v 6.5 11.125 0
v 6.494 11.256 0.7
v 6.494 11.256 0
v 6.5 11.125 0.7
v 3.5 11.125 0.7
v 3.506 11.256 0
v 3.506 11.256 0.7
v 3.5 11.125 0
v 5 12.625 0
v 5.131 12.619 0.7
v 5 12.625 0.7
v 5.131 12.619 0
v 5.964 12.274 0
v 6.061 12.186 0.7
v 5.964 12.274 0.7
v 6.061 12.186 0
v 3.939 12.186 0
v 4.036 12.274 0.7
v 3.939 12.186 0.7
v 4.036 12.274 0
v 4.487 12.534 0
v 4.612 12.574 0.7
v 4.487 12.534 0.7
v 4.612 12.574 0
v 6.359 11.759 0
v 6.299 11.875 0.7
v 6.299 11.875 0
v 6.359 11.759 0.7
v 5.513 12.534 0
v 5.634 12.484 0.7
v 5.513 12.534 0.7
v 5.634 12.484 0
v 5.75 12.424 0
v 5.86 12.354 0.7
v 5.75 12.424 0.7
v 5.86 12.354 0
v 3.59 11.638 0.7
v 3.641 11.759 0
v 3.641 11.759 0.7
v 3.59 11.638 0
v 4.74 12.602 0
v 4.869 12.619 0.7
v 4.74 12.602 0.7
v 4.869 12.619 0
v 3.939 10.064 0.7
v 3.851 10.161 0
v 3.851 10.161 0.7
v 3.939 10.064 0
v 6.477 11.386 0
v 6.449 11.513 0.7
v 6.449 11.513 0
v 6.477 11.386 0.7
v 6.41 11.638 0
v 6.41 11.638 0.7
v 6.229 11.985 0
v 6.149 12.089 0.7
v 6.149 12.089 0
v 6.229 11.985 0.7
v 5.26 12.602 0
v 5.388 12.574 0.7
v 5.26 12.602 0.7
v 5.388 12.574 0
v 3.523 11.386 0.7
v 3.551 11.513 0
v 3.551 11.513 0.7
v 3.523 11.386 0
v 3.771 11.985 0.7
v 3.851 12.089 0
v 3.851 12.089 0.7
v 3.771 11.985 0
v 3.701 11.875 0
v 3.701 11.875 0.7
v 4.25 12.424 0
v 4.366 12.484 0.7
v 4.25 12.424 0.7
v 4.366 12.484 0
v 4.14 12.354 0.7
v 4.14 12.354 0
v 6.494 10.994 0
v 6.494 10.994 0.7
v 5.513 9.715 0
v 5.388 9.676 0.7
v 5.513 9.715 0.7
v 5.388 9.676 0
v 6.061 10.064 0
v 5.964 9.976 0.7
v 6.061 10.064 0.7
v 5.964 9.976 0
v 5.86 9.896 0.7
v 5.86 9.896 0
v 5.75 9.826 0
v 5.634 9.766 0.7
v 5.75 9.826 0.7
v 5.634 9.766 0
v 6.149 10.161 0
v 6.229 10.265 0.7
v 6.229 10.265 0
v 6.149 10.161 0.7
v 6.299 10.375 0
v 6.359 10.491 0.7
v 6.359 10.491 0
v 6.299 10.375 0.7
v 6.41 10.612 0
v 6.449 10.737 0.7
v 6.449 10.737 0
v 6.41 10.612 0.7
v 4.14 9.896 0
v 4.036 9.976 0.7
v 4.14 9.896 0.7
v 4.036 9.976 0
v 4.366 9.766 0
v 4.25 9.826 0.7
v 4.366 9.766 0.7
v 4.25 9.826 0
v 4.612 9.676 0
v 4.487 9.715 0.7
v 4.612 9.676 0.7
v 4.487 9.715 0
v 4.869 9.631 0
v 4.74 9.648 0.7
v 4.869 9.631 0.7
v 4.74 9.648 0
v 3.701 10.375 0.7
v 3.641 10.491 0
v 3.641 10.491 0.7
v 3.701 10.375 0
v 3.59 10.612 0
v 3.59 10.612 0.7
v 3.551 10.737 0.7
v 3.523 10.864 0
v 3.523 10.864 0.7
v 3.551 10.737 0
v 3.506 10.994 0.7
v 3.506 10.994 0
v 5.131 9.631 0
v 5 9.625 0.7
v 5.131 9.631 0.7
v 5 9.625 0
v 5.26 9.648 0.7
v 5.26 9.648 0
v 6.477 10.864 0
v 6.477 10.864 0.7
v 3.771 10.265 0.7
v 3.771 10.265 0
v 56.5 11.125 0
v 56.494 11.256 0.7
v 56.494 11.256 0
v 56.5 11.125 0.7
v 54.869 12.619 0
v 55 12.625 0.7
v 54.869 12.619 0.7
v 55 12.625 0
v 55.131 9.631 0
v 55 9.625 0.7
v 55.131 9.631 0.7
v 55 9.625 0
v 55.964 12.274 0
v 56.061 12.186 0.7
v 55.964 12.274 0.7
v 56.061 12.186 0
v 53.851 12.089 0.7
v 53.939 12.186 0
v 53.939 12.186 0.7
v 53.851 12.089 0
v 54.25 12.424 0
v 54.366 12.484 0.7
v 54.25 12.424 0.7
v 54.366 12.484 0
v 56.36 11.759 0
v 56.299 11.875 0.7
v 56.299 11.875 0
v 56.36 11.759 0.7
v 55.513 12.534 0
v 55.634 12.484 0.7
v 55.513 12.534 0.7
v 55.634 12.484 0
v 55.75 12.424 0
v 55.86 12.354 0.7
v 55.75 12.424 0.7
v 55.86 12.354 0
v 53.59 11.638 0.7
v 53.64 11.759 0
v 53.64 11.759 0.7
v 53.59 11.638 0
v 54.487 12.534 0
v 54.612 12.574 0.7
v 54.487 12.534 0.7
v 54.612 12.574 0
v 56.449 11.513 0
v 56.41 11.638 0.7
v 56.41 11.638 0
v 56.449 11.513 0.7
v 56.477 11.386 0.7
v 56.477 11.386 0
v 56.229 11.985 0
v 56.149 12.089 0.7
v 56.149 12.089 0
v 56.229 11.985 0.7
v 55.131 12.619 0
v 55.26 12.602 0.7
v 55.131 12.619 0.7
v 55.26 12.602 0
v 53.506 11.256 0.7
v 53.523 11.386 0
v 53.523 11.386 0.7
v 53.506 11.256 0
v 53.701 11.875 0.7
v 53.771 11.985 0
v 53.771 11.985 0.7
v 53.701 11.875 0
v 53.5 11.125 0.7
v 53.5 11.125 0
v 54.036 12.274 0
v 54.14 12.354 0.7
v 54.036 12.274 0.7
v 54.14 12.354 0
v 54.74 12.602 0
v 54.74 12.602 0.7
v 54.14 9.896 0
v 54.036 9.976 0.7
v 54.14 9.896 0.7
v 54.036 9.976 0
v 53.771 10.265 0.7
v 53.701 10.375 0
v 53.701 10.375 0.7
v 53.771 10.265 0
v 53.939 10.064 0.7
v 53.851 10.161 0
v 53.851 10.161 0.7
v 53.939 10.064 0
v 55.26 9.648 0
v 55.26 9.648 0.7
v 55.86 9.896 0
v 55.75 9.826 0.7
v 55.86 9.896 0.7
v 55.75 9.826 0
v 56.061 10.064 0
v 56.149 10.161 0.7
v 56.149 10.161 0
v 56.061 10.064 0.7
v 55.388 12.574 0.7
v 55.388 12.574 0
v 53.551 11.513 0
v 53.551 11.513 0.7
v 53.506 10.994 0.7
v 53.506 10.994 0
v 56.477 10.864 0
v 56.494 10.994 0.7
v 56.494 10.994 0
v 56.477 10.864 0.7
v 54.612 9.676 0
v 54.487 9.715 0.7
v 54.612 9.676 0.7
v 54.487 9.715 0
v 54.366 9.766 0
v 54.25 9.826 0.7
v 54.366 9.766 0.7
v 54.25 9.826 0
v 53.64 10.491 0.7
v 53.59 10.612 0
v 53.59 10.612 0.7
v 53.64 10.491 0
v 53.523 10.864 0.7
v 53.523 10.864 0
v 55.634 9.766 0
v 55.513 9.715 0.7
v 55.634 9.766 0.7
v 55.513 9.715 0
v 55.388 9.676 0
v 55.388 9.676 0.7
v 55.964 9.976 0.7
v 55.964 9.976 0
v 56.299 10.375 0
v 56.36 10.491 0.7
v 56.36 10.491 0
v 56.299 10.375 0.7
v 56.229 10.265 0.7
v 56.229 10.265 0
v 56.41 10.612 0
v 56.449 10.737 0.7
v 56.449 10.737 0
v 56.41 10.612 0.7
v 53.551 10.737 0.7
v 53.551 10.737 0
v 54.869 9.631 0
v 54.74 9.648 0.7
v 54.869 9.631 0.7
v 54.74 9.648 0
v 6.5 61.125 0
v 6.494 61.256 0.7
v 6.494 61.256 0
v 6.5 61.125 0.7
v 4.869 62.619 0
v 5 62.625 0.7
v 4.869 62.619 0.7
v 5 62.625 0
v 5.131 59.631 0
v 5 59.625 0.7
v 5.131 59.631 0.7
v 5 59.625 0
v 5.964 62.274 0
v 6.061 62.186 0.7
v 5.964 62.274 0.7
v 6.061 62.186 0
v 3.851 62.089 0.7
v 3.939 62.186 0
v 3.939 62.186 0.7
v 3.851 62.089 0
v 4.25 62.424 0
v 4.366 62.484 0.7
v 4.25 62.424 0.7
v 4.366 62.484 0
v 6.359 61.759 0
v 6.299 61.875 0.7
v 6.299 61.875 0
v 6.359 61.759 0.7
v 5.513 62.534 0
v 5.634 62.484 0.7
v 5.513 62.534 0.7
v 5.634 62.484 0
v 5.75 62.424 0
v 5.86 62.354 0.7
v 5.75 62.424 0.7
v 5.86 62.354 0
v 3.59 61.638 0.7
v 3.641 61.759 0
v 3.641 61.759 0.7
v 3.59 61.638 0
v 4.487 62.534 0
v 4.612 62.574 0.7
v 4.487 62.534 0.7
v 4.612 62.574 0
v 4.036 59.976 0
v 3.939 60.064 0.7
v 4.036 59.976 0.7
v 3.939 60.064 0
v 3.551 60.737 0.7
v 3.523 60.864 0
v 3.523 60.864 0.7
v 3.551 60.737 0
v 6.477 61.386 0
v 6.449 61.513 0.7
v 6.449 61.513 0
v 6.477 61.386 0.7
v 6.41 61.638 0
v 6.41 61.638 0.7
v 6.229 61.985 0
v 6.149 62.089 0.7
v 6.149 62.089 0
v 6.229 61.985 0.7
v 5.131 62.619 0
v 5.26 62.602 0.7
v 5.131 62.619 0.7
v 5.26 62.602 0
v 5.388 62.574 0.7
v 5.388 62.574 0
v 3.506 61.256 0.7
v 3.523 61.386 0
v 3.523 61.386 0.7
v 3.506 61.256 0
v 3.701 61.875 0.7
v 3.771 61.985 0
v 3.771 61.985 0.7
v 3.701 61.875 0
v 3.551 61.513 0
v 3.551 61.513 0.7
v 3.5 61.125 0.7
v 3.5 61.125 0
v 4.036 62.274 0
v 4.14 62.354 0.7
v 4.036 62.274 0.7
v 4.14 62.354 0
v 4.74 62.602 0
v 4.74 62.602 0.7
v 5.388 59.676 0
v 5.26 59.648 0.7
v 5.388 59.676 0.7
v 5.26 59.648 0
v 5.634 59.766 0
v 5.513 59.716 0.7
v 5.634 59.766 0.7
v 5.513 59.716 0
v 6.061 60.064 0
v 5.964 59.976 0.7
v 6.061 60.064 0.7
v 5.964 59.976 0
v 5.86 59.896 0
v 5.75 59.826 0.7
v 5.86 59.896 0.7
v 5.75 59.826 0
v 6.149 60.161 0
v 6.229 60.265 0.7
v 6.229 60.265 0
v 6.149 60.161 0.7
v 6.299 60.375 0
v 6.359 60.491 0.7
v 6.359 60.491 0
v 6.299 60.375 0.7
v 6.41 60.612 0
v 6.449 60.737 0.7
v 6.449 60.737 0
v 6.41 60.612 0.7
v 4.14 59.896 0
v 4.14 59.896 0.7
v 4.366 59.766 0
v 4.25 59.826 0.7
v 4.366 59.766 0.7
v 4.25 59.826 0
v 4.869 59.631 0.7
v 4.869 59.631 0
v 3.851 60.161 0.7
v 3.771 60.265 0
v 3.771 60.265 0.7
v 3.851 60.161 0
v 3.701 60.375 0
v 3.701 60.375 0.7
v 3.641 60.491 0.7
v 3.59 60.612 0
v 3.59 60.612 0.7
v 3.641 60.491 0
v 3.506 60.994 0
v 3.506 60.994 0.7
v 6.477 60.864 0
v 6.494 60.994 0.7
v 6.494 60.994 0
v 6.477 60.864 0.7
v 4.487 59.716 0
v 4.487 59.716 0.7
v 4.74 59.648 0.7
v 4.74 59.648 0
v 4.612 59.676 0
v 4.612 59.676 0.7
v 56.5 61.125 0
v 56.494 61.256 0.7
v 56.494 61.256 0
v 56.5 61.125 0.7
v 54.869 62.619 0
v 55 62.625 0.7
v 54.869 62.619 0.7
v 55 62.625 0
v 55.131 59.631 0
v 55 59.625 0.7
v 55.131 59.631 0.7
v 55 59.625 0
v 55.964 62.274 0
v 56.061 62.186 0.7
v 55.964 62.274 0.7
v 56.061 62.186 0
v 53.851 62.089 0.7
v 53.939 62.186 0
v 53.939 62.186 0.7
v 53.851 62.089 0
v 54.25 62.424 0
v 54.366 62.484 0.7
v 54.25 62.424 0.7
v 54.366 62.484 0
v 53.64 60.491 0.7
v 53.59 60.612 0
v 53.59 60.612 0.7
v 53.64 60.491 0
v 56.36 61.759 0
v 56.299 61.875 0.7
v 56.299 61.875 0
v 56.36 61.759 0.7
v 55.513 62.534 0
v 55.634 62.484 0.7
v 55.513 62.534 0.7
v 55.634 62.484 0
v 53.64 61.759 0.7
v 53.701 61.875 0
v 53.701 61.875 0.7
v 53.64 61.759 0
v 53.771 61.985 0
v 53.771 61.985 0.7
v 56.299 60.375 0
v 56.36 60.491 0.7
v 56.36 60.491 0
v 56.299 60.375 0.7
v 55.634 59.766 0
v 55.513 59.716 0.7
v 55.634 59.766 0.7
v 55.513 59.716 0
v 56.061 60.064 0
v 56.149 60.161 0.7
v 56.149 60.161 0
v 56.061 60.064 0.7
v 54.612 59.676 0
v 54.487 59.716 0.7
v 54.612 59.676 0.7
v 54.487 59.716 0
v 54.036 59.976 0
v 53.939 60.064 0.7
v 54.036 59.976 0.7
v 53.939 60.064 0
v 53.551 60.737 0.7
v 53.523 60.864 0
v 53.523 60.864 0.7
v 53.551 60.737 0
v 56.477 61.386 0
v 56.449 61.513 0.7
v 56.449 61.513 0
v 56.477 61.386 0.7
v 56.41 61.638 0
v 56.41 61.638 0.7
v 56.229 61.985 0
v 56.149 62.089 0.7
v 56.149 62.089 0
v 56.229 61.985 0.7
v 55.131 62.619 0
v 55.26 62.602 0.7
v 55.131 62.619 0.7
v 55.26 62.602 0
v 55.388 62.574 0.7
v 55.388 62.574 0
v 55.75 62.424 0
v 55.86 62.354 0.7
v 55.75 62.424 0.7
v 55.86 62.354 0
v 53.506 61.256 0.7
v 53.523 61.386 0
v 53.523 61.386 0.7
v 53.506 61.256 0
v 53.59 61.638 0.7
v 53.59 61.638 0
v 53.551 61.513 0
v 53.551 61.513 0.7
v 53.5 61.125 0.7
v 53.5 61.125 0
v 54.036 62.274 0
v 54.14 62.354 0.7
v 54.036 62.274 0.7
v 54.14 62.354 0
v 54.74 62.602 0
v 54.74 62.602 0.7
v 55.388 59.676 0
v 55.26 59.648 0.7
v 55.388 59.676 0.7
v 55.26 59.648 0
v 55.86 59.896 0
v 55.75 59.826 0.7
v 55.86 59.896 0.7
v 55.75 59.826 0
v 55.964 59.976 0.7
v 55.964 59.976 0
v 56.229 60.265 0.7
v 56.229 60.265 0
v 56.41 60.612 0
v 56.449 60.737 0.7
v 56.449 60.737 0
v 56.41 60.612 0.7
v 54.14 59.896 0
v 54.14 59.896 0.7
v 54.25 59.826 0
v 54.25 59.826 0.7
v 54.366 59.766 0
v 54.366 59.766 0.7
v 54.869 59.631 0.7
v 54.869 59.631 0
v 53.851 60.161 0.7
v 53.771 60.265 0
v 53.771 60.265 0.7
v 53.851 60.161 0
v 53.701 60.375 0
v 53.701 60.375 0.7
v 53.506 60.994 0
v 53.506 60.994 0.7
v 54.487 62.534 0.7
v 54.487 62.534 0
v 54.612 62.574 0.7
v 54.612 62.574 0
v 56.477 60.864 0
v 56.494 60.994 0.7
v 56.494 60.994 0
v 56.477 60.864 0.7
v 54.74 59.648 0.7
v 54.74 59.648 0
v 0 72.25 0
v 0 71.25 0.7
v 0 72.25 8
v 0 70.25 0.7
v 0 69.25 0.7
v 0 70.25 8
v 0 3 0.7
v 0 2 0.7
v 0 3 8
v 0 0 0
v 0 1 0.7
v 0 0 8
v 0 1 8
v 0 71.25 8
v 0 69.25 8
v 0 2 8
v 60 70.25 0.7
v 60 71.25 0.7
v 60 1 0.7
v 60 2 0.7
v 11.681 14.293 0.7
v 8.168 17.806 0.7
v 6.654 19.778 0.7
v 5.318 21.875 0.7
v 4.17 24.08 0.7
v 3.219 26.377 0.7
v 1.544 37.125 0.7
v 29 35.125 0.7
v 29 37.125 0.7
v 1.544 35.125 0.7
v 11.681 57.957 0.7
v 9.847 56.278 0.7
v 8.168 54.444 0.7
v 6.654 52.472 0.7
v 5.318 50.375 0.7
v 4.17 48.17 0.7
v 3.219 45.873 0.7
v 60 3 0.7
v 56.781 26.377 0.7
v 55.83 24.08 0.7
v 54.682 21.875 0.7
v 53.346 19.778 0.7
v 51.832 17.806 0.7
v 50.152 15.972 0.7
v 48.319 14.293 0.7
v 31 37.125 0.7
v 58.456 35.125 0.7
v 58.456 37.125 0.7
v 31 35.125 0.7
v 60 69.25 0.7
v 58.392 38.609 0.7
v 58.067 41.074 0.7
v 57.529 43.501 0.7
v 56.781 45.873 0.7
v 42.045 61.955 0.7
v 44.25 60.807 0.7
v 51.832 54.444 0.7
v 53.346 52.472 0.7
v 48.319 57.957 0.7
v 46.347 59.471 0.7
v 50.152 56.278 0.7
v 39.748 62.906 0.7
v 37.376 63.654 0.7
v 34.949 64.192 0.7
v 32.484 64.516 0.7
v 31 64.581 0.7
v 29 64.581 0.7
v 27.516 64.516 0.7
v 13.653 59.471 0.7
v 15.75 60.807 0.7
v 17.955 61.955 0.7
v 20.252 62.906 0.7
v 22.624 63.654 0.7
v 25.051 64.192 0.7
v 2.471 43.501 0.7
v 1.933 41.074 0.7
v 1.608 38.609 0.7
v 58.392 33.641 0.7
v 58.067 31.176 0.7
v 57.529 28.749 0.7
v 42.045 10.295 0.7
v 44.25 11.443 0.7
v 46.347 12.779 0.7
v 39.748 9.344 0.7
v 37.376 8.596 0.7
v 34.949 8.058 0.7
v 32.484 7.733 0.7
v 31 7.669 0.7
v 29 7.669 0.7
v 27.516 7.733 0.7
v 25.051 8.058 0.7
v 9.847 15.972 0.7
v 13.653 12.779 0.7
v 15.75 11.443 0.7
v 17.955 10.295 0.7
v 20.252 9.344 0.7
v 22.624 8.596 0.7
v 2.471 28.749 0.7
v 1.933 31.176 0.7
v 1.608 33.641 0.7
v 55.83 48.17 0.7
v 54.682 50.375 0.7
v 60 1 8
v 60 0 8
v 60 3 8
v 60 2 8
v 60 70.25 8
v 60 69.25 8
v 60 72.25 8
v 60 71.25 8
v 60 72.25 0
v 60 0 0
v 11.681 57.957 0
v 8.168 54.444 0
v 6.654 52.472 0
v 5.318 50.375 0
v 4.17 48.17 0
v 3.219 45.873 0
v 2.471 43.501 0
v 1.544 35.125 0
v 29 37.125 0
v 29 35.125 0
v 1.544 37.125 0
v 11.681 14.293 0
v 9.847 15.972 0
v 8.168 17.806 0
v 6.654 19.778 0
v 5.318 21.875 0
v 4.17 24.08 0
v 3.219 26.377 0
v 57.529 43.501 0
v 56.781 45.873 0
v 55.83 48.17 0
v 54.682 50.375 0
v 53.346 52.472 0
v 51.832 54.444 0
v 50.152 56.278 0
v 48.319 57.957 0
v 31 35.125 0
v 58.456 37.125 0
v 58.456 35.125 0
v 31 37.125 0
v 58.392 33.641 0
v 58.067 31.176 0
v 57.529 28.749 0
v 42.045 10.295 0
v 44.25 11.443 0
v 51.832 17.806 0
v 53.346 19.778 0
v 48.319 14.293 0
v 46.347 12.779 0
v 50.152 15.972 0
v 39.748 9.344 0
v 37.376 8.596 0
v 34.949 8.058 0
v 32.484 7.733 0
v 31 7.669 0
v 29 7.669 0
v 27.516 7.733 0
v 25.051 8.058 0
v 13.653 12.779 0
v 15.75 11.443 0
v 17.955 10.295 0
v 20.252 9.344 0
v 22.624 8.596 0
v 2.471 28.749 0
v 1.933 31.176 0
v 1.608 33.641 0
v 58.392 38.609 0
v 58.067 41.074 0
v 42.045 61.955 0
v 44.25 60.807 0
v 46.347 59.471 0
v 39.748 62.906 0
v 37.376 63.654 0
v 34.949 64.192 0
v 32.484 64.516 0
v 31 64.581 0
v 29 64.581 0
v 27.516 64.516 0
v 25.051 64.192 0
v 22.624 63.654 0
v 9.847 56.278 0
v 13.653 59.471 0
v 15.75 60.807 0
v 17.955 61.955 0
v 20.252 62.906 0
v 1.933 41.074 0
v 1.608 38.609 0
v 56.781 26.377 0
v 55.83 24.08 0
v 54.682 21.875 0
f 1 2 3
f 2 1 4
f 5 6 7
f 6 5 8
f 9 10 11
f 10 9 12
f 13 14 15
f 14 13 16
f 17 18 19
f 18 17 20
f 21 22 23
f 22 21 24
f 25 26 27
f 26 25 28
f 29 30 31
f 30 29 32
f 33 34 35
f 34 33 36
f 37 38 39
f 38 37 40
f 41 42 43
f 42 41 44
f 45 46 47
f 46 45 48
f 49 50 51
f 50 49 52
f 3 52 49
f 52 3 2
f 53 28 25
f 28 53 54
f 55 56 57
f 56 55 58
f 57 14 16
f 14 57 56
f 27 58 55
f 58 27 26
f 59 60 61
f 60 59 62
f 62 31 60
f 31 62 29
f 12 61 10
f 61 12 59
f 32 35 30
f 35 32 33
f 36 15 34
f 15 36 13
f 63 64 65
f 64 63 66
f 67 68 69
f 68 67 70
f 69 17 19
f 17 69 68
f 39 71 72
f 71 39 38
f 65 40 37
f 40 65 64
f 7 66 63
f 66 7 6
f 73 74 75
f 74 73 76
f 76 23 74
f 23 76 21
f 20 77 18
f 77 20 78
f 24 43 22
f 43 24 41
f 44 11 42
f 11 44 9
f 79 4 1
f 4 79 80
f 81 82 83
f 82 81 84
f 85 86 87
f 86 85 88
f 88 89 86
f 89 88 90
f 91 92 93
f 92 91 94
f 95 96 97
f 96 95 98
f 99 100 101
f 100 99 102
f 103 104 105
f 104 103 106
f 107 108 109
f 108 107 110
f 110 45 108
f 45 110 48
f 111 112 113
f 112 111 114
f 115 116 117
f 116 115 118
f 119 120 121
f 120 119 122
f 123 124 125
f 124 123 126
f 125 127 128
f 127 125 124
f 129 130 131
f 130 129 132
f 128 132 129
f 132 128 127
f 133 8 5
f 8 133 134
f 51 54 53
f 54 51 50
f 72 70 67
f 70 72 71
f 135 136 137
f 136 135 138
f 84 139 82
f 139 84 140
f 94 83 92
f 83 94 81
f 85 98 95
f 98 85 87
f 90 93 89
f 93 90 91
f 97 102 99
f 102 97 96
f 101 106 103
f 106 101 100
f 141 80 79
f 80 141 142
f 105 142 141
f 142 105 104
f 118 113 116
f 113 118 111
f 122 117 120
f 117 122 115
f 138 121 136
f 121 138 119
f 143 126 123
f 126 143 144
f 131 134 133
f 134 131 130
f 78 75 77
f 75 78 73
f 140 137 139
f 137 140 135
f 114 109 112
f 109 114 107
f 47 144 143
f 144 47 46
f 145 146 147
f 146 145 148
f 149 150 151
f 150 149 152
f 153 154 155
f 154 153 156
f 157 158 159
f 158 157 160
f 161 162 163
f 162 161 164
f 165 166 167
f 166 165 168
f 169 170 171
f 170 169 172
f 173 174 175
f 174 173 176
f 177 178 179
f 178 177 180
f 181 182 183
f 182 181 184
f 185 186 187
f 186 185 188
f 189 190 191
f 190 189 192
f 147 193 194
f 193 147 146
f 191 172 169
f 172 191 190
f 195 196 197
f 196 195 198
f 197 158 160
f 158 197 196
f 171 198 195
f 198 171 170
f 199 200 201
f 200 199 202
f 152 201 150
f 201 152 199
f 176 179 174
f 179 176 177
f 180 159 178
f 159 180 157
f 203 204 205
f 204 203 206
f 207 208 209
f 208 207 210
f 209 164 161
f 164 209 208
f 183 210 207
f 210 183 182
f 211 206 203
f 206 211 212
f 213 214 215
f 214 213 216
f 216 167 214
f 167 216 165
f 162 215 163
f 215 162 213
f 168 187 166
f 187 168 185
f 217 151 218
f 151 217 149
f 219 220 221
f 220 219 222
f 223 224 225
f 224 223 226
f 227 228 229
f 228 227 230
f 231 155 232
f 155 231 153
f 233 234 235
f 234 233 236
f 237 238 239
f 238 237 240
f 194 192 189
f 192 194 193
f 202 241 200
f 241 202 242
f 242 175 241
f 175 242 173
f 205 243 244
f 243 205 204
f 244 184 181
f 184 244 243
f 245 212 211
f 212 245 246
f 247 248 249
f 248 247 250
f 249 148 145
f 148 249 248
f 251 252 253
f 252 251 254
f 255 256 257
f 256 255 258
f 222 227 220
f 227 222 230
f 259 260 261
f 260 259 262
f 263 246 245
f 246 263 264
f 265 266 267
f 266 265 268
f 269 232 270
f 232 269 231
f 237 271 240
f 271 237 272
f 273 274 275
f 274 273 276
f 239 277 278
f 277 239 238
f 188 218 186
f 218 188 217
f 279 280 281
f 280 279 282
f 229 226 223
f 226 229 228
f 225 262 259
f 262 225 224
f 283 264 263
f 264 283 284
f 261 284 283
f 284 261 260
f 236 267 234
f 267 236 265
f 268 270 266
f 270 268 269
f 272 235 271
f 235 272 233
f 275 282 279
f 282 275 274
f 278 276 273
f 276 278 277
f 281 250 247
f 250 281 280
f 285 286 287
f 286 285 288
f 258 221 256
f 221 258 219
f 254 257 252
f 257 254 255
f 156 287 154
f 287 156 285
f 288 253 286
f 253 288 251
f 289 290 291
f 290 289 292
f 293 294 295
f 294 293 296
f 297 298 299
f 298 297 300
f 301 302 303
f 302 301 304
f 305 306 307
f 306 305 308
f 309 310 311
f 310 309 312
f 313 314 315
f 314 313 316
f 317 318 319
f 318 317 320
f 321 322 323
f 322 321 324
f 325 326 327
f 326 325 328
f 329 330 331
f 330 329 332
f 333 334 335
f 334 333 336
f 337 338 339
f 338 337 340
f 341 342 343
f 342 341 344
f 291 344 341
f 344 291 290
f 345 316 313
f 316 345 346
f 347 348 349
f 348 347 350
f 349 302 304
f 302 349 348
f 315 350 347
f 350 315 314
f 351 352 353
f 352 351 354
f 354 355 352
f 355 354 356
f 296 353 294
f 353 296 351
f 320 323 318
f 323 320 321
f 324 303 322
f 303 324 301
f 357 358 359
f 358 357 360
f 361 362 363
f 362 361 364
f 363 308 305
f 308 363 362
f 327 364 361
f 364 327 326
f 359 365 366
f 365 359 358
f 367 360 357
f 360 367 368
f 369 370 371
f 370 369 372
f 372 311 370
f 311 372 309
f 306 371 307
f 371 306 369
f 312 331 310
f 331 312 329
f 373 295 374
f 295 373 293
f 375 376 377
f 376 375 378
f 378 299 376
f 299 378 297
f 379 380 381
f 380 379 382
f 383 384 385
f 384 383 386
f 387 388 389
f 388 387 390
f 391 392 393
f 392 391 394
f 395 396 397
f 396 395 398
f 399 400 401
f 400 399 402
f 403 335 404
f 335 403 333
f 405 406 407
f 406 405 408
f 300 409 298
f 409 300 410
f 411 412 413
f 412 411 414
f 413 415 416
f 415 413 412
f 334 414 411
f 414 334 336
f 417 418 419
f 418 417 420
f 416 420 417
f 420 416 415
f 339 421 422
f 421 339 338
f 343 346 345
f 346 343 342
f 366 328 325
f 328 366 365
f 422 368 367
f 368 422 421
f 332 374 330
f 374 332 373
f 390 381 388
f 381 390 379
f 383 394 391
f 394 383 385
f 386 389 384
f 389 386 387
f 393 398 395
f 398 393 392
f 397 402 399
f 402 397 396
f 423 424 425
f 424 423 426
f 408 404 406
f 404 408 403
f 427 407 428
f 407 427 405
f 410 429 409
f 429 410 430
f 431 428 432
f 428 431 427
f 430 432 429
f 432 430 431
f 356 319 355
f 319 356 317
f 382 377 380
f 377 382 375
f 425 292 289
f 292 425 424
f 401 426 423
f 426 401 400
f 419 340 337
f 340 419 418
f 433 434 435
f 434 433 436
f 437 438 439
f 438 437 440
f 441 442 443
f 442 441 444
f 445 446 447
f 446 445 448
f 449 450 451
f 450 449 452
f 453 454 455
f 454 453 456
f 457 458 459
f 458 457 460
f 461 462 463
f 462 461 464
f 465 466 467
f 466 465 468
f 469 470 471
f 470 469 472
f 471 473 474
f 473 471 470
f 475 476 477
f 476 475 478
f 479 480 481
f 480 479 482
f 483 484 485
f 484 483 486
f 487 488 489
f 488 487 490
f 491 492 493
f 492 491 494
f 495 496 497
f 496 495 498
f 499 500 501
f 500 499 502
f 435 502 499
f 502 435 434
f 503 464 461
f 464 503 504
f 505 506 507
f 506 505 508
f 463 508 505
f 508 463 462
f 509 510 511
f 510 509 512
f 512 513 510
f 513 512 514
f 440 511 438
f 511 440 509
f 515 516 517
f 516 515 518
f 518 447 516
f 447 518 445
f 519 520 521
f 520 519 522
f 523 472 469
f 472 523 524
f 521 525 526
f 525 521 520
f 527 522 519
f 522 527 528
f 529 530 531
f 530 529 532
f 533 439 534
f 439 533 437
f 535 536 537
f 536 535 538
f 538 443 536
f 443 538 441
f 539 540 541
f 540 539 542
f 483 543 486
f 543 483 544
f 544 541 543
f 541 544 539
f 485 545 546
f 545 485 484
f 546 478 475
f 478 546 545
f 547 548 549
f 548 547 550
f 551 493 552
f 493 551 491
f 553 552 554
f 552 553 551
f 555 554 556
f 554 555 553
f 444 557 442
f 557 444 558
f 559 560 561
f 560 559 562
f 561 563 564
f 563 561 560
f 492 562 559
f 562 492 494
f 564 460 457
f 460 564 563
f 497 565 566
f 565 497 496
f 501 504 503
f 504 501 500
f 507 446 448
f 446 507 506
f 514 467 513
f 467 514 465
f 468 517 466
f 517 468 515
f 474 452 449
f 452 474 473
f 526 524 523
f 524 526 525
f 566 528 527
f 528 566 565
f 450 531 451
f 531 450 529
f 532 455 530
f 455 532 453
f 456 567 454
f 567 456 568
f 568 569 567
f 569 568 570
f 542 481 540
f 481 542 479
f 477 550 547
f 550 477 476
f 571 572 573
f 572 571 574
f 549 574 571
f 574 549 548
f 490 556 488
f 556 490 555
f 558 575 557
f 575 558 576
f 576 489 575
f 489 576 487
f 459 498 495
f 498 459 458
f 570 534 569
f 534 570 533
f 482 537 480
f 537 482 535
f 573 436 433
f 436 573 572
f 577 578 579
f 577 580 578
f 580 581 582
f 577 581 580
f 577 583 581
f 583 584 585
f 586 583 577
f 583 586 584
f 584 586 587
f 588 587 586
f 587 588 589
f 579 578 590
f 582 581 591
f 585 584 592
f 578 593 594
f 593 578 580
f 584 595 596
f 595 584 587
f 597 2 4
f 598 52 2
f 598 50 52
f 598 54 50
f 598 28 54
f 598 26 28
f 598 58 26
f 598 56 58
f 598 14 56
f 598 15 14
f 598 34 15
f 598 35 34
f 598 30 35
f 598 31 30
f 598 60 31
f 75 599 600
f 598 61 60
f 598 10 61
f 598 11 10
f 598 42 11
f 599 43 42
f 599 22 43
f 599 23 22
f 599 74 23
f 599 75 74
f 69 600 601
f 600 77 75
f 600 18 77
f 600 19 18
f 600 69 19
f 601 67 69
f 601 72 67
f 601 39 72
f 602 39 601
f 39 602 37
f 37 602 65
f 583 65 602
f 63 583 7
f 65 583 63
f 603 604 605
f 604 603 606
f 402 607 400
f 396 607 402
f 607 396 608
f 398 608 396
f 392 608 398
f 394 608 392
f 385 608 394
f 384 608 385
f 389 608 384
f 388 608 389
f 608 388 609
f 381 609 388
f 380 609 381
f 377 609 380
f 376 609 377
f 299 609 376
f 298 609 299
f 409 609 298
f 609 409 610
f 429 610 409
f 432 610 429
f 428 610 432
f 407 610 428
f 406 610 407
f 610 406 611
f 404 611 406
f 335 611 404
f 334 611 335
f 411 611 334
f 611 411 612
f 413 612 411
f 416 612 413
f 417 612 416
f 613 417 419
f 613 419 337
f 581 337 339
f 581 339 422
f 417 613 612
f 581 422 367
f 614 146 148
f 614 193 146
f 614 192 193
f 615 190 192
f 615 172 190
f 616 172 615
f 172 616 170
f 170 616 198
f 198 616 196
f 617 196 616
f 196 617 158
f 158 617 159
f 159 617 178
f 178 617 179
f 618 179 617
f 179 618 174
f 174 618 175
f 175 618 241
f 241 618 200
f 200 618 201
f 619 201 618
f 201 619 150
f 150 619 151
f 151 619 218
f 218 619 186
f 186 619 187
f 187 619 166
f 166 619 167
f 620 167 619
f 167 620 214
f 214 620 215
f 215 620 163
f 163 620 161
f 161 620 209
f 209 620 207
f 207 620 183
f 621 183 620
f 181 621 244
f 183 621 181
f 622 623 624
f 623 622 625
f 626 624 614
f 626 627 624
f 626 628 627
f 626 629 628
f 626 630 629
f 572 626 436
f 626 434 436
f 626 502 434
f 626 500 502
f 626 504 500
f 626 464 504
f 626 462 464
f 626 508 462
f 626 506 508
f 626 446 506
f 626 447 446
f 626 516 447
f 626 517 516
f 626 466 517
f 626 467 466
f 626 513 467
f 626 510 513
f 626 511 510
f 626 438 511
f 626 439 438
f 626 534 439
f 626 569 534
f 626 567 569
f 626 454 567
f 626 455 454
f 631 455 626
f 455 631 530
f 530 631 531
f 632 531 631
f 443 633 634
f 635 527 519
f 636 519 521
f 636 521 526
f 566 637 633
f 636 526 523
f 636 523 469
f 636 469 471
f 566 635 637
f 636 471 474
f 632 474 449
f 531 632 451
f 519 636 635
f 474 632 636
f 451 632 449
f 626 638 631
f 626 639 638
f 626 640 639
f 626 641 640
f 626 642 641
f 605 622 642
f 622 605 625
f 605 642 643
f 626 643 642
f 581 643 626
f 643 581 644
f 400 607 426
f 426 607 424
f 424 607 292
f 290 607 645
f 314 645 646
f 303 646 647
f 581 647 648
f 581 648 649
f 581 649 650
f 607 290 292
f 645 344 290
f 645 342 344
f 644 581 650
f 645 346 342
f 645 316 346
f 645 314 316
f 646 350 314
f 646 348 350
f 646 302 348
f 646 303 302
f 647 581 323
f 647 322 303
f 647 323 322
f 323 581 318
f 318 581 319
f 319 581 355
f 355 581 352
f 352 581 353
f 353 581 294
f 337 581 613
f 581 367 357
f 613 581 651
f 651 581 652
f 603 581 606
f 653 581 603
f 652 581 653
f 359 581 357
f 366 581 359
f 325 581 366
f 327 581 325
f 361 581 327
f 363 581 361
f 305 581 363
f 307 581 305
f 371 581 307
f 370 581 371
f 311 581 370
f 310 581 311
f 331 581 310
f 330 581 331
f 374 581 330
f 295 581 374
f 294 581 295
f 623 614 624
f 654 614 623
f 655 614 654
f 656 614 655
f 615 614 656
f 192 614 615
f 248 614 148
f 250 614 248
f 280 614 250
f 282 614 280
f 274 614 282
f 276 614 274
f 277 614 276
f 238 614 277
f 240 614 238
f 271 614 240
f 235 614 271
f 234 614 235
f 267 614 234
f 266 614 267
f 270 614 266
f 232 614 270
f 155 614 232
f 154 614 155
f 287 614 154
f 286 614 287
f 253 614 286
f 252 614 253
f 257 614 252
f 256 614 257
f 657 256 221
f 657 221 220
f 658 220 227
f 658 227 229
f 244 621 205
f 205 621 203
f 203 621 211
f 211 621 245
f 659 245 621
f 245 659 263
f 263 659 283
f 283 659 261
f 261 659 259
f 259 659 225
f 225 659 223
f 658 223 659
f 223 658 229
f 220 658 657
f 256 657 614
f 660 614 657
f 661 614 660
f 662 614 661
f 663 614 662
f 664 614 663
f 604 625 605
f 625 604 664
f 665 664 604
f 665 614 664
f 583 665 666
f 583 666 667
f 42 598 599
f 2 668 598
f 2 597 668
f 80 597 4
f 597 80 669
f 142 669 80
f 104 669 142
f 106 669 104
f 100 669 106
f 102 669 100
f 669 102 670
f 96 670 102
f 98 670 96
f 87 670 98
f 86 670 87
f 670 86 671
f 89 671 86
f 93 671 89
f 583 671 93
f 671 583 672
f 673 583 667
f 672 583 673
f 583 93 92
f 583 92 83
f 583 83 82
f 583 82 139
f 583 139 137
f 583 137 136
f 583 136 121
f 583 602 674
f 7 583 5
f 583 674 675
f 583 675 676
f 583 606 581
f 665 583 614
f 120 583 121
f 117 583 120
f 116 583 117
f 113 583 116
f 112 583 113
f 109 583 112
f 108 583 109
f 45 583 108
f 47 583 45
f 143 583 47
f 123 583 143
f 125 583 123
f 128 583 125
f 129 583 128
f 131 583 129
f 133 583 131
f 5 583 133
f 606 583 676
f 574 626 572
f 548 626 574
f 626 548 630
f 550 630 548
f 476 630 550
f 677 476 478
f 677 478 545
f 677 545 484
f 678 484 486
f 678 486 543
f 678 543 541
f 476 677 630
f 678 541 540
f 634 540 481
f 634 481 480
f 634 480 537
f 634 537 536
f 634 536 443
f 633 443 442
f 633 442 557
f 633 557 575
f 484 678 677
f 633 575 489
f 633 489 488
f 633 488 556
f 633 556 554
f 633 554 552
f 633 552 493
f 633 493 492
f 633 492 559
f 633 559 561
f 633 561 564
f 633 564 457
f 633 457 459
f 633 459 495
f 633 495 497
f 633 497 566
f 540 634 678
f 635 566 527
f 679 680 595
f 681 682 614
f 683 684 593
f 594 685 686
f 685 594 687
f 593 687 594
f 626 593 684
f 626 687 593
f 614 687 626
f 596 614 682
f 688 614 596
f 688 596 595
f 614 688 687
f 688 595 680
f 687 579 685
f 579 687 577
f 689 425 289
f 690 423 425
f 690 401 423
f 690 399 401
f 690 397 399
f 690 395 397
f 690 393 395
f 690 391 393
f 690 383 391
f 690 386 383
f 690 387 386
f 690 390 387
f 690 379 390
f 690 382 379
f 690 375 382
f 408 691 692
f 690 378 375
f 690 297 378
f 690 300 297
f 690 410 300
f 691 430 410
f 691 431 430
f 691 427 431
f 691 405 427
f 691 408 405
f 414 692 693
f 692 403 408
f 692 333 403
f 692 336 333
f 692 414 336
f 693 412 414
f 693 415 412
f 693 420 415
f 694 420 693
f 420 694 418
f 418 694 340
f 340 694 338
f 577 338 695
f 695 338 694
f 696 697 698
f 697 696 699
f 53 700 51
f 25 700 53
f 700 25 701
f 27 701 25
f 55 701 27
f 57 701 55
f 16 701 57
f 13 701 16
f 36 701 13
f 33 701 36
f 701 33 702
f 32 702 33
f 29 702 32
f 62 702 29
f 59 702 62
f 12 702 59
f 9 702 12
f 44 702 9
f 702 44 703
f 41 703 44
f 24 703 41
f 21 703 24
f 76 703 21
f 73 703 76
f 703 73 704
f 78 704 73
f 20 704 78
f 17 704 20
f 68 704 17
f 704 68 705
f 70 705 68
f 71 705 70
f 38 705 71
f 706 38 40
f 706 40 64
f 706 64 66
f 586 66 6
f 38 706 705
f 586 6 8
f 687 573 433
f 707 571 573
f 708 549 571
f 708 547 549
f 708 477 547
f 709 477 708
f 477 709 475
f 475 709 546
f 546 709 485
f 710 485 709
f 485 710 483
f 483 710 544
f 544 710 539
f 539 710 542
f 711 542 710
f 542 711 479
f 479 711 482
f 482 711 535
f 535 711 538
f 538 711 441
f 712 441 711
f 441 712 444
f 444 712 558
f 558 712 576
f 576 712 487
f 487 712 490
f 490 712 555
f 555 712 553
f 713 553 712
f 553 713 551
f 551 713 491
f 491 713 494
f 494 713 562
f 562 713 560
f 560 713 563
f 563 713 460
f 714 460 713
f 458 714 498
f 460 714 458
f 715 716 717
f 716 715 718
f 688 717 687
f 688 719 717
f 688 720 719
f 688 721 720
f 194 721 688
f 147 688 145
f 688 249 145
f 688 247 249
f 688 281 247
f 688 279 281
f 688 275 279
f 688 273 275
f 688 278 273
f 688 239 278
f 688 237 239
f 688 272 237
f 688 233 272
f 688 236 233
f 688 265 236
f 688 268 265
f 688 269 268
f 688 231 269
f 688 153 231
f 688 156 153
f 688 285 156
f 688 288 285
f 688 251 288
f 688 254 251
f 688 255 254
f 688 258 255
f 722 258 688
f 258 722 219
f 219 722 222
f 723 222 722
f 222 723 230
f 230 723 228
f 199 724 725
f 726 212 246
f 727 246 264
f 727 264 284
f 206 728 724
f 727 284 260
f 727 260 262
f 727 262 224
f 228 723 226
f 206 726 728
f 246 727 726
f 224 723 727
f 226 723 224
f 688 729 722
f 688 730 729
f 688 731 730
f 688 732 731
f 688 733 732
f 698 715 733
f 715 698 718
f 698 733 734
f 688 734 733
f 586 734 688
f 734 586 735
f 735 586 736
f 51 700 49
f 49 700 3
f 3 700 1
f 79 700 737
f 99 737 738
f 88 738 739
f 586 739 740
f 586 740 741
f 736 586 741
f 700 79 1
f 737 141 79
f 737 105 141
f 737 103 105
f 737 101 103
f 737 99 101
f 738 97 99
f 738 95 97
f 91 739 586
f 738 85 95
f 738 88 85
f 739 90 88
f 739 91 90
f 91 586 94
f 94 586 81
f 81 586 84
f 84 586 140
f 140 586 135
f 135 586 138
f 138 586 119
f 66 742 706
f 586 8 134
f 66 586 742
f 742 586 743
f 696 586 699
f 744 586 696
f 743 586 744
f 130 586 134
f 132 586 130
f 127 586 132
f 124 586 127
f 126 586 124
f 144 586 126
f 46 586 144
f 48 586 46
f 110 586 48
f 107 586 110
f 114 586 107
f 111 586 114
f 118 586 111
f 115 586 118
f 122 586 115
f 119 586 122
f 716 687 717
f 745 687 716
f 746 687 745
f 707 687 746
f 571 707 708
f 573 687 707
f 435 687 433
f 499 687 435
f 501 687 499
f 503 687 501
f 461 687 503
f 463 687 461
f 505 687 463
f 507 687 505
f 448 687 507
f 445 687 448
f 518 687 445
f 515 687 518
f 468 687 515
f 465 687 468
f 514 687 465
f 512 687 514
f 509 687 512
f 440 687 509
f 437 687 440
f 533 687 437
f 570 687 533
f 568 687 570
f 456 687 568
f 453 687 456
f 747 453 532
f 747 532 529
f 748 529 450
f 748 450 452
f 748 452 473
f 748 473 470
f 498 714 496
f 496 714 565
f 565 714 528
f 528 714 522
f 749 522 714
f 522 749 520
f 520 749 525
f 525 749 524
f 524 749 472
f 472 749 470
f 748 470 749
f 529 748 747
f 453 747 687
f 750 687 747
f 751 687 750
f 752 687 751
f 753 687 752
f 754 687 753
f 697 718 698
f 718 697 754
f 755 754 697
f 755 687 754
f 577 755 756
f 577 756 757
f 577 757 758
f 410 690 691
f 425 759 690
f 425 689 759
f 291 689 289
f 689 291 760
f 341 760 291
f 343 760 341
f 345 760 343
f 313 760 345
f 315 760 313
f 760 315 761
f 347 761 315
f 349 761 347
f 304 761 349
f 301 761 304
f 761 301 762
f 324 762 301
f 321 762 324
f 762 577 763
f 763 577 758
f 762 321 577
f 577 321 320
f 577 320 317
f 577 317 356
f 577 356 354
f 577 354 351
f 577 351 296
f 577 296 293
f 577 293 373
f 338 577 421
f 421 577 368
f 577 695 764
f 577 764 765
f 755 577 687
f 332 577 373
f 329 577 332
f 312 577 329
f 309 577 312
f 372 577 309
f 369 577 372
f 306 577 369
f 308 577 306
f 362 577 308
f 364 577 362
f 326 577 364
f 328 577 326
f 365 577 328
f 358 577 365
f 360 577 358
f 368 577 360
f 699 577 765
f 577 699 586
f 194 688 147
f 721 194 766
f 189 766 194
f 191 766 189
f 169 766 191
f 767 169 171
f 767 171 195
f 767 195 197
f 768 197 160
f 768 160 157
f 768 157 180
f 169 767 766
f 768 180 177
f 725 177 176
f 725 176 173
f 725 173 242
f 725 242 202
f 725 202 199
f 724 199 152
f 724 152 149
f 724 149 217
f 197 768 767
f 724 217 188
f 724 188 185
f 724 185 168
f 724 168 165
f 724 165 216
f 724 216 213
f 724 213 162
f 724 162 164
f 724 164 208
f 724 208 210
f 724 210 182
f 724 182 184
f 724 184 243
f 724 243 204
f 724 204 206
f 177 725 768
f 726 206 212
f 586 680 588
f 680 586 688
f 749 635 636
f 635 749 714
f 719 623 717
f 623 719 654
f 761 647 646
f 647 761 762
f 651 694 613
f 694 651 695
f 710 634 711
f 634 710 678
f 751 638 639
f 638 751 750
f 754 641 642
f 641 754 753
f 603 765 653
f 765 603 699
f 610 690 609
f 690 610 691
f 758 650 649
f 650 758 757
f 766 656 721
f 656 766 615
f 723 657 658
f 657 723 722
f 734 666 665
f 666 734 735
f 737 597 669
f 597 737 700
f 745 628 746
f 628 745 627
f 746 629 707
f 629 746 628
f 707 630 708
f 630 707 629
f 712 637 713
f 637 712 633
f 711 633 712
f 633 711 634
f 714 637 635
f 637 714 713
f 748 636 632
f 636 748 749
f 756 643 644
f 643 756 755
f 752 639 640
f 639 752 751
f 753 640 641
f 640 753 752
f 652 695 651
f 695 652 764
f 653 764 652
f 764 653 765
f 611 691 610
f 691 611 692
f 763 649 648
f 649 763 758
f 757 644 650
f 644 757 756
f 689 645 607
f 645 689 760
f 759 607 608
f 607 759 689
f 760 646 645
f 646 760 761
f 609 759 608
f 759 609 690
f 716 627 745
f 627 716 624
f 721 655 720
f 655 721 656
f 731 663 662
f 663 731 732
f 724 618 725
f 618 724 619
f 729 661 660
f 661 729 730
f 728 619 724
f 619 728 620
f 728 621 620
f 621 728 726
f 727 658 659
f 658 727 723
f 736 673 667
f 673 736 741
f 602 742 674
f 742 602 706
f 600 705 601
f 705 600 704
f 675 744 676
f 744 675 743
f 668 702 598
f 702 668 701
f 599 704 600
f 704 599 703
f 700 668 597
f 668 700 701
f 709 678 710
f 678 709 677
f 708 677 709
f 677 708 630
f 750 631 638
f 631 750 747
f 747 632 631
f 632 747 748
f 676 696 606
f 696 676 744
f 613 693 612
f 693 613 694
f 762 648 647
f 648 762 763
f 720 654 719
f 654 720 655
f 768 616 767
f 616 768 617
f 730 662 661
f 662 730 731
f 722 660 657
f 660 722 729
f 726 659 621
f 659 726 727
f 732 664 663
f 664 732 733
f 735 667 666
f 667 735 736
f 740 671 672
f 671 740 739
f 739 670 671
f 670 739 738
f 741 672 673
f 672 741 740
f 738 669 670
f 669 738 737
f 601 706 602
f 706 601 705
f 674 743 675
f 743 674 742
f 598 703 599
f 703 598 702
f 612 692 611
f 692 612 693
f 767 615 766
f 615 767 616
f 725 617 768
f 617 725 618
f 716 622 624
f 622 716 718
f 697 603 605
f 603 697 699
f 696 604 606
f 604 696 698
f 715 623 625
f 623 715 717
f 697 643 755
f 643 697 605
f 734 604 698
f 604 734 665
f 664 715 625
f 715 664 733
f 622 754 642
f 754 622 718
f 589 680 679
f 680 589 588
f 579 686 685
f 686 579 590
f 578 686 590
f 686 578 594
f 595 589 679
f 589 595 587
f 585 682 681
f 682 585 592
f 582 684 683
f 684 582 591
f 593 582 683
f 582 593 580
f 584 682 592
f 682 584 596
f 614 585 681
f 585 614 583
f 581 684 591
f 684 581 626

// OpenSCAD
//General
$fn = 72;
tolerance = 0.5;
wall = 2;
r_m3 = 1.5;

l_cover = 60;
// l_cover = 10;
cover_wall = 1;
w_cover_inner = 70+tolerance/2;
w_cover_outter = w_cover_inner+cover_wall*2;
h_top_plane = 0.3+0.2*2;
h_cover = 8;

r_fan = 57/2;
w_grill_spoke = 2;
d_fan_screw = 50;

// main plane
difference(){
  cube([l_cover, w_cover_outter, h_top_plane]);
  translate([l_cover/2, w_cover_outter/2, -0.01])
  cylinder(h=h_top_plane+1, r=r_fan);

  color("blue")
  translate([l_cover/2-d_fan_screw/2, w_cover_outter/2-d_fan_screw/2, -0.01]){
    cylinder(r=r_m3);
    translate([d_fan_screw,0,0])
    cylinder(r=r_m3);
    translate([0,d_fan_screw,0])
    cylinder(r=r_m3);
    translate([d_fan_screw,d_fan_screw,0])
    cylinder(r=r_m3);
  }
}

translate([0, (w_cover_outter-w_grill_spoke)/2, 0]){
  cube([l_cover, w_grill_spoke, h_top_plane]);

  translate([r_fan+w_grill_spoke*5/4,-r_fan-w_grill_spoke/2,0])
  rotate([0,0,90])
  cube([l_cover, w_grill_spoke, h_top_plane]);
}

difference(){
  cube([l_cover, w_cover_outter, h_cover]);
  translate([0, cover_wall, 0])
  cube([l_cover, w_cover_outter-cover_wall*2, h_cover+0.001]);
}

translate([0, cover_wall*2, 0])
difference(){
  cube([l_cover, w_cover_inner-cover_wall*2, h_cover]);
  translate([0, cover_wall, 0])
  cube([l_cover, w_cover_inner-cover_wall*2*2, h_cover+0.001]);
}
